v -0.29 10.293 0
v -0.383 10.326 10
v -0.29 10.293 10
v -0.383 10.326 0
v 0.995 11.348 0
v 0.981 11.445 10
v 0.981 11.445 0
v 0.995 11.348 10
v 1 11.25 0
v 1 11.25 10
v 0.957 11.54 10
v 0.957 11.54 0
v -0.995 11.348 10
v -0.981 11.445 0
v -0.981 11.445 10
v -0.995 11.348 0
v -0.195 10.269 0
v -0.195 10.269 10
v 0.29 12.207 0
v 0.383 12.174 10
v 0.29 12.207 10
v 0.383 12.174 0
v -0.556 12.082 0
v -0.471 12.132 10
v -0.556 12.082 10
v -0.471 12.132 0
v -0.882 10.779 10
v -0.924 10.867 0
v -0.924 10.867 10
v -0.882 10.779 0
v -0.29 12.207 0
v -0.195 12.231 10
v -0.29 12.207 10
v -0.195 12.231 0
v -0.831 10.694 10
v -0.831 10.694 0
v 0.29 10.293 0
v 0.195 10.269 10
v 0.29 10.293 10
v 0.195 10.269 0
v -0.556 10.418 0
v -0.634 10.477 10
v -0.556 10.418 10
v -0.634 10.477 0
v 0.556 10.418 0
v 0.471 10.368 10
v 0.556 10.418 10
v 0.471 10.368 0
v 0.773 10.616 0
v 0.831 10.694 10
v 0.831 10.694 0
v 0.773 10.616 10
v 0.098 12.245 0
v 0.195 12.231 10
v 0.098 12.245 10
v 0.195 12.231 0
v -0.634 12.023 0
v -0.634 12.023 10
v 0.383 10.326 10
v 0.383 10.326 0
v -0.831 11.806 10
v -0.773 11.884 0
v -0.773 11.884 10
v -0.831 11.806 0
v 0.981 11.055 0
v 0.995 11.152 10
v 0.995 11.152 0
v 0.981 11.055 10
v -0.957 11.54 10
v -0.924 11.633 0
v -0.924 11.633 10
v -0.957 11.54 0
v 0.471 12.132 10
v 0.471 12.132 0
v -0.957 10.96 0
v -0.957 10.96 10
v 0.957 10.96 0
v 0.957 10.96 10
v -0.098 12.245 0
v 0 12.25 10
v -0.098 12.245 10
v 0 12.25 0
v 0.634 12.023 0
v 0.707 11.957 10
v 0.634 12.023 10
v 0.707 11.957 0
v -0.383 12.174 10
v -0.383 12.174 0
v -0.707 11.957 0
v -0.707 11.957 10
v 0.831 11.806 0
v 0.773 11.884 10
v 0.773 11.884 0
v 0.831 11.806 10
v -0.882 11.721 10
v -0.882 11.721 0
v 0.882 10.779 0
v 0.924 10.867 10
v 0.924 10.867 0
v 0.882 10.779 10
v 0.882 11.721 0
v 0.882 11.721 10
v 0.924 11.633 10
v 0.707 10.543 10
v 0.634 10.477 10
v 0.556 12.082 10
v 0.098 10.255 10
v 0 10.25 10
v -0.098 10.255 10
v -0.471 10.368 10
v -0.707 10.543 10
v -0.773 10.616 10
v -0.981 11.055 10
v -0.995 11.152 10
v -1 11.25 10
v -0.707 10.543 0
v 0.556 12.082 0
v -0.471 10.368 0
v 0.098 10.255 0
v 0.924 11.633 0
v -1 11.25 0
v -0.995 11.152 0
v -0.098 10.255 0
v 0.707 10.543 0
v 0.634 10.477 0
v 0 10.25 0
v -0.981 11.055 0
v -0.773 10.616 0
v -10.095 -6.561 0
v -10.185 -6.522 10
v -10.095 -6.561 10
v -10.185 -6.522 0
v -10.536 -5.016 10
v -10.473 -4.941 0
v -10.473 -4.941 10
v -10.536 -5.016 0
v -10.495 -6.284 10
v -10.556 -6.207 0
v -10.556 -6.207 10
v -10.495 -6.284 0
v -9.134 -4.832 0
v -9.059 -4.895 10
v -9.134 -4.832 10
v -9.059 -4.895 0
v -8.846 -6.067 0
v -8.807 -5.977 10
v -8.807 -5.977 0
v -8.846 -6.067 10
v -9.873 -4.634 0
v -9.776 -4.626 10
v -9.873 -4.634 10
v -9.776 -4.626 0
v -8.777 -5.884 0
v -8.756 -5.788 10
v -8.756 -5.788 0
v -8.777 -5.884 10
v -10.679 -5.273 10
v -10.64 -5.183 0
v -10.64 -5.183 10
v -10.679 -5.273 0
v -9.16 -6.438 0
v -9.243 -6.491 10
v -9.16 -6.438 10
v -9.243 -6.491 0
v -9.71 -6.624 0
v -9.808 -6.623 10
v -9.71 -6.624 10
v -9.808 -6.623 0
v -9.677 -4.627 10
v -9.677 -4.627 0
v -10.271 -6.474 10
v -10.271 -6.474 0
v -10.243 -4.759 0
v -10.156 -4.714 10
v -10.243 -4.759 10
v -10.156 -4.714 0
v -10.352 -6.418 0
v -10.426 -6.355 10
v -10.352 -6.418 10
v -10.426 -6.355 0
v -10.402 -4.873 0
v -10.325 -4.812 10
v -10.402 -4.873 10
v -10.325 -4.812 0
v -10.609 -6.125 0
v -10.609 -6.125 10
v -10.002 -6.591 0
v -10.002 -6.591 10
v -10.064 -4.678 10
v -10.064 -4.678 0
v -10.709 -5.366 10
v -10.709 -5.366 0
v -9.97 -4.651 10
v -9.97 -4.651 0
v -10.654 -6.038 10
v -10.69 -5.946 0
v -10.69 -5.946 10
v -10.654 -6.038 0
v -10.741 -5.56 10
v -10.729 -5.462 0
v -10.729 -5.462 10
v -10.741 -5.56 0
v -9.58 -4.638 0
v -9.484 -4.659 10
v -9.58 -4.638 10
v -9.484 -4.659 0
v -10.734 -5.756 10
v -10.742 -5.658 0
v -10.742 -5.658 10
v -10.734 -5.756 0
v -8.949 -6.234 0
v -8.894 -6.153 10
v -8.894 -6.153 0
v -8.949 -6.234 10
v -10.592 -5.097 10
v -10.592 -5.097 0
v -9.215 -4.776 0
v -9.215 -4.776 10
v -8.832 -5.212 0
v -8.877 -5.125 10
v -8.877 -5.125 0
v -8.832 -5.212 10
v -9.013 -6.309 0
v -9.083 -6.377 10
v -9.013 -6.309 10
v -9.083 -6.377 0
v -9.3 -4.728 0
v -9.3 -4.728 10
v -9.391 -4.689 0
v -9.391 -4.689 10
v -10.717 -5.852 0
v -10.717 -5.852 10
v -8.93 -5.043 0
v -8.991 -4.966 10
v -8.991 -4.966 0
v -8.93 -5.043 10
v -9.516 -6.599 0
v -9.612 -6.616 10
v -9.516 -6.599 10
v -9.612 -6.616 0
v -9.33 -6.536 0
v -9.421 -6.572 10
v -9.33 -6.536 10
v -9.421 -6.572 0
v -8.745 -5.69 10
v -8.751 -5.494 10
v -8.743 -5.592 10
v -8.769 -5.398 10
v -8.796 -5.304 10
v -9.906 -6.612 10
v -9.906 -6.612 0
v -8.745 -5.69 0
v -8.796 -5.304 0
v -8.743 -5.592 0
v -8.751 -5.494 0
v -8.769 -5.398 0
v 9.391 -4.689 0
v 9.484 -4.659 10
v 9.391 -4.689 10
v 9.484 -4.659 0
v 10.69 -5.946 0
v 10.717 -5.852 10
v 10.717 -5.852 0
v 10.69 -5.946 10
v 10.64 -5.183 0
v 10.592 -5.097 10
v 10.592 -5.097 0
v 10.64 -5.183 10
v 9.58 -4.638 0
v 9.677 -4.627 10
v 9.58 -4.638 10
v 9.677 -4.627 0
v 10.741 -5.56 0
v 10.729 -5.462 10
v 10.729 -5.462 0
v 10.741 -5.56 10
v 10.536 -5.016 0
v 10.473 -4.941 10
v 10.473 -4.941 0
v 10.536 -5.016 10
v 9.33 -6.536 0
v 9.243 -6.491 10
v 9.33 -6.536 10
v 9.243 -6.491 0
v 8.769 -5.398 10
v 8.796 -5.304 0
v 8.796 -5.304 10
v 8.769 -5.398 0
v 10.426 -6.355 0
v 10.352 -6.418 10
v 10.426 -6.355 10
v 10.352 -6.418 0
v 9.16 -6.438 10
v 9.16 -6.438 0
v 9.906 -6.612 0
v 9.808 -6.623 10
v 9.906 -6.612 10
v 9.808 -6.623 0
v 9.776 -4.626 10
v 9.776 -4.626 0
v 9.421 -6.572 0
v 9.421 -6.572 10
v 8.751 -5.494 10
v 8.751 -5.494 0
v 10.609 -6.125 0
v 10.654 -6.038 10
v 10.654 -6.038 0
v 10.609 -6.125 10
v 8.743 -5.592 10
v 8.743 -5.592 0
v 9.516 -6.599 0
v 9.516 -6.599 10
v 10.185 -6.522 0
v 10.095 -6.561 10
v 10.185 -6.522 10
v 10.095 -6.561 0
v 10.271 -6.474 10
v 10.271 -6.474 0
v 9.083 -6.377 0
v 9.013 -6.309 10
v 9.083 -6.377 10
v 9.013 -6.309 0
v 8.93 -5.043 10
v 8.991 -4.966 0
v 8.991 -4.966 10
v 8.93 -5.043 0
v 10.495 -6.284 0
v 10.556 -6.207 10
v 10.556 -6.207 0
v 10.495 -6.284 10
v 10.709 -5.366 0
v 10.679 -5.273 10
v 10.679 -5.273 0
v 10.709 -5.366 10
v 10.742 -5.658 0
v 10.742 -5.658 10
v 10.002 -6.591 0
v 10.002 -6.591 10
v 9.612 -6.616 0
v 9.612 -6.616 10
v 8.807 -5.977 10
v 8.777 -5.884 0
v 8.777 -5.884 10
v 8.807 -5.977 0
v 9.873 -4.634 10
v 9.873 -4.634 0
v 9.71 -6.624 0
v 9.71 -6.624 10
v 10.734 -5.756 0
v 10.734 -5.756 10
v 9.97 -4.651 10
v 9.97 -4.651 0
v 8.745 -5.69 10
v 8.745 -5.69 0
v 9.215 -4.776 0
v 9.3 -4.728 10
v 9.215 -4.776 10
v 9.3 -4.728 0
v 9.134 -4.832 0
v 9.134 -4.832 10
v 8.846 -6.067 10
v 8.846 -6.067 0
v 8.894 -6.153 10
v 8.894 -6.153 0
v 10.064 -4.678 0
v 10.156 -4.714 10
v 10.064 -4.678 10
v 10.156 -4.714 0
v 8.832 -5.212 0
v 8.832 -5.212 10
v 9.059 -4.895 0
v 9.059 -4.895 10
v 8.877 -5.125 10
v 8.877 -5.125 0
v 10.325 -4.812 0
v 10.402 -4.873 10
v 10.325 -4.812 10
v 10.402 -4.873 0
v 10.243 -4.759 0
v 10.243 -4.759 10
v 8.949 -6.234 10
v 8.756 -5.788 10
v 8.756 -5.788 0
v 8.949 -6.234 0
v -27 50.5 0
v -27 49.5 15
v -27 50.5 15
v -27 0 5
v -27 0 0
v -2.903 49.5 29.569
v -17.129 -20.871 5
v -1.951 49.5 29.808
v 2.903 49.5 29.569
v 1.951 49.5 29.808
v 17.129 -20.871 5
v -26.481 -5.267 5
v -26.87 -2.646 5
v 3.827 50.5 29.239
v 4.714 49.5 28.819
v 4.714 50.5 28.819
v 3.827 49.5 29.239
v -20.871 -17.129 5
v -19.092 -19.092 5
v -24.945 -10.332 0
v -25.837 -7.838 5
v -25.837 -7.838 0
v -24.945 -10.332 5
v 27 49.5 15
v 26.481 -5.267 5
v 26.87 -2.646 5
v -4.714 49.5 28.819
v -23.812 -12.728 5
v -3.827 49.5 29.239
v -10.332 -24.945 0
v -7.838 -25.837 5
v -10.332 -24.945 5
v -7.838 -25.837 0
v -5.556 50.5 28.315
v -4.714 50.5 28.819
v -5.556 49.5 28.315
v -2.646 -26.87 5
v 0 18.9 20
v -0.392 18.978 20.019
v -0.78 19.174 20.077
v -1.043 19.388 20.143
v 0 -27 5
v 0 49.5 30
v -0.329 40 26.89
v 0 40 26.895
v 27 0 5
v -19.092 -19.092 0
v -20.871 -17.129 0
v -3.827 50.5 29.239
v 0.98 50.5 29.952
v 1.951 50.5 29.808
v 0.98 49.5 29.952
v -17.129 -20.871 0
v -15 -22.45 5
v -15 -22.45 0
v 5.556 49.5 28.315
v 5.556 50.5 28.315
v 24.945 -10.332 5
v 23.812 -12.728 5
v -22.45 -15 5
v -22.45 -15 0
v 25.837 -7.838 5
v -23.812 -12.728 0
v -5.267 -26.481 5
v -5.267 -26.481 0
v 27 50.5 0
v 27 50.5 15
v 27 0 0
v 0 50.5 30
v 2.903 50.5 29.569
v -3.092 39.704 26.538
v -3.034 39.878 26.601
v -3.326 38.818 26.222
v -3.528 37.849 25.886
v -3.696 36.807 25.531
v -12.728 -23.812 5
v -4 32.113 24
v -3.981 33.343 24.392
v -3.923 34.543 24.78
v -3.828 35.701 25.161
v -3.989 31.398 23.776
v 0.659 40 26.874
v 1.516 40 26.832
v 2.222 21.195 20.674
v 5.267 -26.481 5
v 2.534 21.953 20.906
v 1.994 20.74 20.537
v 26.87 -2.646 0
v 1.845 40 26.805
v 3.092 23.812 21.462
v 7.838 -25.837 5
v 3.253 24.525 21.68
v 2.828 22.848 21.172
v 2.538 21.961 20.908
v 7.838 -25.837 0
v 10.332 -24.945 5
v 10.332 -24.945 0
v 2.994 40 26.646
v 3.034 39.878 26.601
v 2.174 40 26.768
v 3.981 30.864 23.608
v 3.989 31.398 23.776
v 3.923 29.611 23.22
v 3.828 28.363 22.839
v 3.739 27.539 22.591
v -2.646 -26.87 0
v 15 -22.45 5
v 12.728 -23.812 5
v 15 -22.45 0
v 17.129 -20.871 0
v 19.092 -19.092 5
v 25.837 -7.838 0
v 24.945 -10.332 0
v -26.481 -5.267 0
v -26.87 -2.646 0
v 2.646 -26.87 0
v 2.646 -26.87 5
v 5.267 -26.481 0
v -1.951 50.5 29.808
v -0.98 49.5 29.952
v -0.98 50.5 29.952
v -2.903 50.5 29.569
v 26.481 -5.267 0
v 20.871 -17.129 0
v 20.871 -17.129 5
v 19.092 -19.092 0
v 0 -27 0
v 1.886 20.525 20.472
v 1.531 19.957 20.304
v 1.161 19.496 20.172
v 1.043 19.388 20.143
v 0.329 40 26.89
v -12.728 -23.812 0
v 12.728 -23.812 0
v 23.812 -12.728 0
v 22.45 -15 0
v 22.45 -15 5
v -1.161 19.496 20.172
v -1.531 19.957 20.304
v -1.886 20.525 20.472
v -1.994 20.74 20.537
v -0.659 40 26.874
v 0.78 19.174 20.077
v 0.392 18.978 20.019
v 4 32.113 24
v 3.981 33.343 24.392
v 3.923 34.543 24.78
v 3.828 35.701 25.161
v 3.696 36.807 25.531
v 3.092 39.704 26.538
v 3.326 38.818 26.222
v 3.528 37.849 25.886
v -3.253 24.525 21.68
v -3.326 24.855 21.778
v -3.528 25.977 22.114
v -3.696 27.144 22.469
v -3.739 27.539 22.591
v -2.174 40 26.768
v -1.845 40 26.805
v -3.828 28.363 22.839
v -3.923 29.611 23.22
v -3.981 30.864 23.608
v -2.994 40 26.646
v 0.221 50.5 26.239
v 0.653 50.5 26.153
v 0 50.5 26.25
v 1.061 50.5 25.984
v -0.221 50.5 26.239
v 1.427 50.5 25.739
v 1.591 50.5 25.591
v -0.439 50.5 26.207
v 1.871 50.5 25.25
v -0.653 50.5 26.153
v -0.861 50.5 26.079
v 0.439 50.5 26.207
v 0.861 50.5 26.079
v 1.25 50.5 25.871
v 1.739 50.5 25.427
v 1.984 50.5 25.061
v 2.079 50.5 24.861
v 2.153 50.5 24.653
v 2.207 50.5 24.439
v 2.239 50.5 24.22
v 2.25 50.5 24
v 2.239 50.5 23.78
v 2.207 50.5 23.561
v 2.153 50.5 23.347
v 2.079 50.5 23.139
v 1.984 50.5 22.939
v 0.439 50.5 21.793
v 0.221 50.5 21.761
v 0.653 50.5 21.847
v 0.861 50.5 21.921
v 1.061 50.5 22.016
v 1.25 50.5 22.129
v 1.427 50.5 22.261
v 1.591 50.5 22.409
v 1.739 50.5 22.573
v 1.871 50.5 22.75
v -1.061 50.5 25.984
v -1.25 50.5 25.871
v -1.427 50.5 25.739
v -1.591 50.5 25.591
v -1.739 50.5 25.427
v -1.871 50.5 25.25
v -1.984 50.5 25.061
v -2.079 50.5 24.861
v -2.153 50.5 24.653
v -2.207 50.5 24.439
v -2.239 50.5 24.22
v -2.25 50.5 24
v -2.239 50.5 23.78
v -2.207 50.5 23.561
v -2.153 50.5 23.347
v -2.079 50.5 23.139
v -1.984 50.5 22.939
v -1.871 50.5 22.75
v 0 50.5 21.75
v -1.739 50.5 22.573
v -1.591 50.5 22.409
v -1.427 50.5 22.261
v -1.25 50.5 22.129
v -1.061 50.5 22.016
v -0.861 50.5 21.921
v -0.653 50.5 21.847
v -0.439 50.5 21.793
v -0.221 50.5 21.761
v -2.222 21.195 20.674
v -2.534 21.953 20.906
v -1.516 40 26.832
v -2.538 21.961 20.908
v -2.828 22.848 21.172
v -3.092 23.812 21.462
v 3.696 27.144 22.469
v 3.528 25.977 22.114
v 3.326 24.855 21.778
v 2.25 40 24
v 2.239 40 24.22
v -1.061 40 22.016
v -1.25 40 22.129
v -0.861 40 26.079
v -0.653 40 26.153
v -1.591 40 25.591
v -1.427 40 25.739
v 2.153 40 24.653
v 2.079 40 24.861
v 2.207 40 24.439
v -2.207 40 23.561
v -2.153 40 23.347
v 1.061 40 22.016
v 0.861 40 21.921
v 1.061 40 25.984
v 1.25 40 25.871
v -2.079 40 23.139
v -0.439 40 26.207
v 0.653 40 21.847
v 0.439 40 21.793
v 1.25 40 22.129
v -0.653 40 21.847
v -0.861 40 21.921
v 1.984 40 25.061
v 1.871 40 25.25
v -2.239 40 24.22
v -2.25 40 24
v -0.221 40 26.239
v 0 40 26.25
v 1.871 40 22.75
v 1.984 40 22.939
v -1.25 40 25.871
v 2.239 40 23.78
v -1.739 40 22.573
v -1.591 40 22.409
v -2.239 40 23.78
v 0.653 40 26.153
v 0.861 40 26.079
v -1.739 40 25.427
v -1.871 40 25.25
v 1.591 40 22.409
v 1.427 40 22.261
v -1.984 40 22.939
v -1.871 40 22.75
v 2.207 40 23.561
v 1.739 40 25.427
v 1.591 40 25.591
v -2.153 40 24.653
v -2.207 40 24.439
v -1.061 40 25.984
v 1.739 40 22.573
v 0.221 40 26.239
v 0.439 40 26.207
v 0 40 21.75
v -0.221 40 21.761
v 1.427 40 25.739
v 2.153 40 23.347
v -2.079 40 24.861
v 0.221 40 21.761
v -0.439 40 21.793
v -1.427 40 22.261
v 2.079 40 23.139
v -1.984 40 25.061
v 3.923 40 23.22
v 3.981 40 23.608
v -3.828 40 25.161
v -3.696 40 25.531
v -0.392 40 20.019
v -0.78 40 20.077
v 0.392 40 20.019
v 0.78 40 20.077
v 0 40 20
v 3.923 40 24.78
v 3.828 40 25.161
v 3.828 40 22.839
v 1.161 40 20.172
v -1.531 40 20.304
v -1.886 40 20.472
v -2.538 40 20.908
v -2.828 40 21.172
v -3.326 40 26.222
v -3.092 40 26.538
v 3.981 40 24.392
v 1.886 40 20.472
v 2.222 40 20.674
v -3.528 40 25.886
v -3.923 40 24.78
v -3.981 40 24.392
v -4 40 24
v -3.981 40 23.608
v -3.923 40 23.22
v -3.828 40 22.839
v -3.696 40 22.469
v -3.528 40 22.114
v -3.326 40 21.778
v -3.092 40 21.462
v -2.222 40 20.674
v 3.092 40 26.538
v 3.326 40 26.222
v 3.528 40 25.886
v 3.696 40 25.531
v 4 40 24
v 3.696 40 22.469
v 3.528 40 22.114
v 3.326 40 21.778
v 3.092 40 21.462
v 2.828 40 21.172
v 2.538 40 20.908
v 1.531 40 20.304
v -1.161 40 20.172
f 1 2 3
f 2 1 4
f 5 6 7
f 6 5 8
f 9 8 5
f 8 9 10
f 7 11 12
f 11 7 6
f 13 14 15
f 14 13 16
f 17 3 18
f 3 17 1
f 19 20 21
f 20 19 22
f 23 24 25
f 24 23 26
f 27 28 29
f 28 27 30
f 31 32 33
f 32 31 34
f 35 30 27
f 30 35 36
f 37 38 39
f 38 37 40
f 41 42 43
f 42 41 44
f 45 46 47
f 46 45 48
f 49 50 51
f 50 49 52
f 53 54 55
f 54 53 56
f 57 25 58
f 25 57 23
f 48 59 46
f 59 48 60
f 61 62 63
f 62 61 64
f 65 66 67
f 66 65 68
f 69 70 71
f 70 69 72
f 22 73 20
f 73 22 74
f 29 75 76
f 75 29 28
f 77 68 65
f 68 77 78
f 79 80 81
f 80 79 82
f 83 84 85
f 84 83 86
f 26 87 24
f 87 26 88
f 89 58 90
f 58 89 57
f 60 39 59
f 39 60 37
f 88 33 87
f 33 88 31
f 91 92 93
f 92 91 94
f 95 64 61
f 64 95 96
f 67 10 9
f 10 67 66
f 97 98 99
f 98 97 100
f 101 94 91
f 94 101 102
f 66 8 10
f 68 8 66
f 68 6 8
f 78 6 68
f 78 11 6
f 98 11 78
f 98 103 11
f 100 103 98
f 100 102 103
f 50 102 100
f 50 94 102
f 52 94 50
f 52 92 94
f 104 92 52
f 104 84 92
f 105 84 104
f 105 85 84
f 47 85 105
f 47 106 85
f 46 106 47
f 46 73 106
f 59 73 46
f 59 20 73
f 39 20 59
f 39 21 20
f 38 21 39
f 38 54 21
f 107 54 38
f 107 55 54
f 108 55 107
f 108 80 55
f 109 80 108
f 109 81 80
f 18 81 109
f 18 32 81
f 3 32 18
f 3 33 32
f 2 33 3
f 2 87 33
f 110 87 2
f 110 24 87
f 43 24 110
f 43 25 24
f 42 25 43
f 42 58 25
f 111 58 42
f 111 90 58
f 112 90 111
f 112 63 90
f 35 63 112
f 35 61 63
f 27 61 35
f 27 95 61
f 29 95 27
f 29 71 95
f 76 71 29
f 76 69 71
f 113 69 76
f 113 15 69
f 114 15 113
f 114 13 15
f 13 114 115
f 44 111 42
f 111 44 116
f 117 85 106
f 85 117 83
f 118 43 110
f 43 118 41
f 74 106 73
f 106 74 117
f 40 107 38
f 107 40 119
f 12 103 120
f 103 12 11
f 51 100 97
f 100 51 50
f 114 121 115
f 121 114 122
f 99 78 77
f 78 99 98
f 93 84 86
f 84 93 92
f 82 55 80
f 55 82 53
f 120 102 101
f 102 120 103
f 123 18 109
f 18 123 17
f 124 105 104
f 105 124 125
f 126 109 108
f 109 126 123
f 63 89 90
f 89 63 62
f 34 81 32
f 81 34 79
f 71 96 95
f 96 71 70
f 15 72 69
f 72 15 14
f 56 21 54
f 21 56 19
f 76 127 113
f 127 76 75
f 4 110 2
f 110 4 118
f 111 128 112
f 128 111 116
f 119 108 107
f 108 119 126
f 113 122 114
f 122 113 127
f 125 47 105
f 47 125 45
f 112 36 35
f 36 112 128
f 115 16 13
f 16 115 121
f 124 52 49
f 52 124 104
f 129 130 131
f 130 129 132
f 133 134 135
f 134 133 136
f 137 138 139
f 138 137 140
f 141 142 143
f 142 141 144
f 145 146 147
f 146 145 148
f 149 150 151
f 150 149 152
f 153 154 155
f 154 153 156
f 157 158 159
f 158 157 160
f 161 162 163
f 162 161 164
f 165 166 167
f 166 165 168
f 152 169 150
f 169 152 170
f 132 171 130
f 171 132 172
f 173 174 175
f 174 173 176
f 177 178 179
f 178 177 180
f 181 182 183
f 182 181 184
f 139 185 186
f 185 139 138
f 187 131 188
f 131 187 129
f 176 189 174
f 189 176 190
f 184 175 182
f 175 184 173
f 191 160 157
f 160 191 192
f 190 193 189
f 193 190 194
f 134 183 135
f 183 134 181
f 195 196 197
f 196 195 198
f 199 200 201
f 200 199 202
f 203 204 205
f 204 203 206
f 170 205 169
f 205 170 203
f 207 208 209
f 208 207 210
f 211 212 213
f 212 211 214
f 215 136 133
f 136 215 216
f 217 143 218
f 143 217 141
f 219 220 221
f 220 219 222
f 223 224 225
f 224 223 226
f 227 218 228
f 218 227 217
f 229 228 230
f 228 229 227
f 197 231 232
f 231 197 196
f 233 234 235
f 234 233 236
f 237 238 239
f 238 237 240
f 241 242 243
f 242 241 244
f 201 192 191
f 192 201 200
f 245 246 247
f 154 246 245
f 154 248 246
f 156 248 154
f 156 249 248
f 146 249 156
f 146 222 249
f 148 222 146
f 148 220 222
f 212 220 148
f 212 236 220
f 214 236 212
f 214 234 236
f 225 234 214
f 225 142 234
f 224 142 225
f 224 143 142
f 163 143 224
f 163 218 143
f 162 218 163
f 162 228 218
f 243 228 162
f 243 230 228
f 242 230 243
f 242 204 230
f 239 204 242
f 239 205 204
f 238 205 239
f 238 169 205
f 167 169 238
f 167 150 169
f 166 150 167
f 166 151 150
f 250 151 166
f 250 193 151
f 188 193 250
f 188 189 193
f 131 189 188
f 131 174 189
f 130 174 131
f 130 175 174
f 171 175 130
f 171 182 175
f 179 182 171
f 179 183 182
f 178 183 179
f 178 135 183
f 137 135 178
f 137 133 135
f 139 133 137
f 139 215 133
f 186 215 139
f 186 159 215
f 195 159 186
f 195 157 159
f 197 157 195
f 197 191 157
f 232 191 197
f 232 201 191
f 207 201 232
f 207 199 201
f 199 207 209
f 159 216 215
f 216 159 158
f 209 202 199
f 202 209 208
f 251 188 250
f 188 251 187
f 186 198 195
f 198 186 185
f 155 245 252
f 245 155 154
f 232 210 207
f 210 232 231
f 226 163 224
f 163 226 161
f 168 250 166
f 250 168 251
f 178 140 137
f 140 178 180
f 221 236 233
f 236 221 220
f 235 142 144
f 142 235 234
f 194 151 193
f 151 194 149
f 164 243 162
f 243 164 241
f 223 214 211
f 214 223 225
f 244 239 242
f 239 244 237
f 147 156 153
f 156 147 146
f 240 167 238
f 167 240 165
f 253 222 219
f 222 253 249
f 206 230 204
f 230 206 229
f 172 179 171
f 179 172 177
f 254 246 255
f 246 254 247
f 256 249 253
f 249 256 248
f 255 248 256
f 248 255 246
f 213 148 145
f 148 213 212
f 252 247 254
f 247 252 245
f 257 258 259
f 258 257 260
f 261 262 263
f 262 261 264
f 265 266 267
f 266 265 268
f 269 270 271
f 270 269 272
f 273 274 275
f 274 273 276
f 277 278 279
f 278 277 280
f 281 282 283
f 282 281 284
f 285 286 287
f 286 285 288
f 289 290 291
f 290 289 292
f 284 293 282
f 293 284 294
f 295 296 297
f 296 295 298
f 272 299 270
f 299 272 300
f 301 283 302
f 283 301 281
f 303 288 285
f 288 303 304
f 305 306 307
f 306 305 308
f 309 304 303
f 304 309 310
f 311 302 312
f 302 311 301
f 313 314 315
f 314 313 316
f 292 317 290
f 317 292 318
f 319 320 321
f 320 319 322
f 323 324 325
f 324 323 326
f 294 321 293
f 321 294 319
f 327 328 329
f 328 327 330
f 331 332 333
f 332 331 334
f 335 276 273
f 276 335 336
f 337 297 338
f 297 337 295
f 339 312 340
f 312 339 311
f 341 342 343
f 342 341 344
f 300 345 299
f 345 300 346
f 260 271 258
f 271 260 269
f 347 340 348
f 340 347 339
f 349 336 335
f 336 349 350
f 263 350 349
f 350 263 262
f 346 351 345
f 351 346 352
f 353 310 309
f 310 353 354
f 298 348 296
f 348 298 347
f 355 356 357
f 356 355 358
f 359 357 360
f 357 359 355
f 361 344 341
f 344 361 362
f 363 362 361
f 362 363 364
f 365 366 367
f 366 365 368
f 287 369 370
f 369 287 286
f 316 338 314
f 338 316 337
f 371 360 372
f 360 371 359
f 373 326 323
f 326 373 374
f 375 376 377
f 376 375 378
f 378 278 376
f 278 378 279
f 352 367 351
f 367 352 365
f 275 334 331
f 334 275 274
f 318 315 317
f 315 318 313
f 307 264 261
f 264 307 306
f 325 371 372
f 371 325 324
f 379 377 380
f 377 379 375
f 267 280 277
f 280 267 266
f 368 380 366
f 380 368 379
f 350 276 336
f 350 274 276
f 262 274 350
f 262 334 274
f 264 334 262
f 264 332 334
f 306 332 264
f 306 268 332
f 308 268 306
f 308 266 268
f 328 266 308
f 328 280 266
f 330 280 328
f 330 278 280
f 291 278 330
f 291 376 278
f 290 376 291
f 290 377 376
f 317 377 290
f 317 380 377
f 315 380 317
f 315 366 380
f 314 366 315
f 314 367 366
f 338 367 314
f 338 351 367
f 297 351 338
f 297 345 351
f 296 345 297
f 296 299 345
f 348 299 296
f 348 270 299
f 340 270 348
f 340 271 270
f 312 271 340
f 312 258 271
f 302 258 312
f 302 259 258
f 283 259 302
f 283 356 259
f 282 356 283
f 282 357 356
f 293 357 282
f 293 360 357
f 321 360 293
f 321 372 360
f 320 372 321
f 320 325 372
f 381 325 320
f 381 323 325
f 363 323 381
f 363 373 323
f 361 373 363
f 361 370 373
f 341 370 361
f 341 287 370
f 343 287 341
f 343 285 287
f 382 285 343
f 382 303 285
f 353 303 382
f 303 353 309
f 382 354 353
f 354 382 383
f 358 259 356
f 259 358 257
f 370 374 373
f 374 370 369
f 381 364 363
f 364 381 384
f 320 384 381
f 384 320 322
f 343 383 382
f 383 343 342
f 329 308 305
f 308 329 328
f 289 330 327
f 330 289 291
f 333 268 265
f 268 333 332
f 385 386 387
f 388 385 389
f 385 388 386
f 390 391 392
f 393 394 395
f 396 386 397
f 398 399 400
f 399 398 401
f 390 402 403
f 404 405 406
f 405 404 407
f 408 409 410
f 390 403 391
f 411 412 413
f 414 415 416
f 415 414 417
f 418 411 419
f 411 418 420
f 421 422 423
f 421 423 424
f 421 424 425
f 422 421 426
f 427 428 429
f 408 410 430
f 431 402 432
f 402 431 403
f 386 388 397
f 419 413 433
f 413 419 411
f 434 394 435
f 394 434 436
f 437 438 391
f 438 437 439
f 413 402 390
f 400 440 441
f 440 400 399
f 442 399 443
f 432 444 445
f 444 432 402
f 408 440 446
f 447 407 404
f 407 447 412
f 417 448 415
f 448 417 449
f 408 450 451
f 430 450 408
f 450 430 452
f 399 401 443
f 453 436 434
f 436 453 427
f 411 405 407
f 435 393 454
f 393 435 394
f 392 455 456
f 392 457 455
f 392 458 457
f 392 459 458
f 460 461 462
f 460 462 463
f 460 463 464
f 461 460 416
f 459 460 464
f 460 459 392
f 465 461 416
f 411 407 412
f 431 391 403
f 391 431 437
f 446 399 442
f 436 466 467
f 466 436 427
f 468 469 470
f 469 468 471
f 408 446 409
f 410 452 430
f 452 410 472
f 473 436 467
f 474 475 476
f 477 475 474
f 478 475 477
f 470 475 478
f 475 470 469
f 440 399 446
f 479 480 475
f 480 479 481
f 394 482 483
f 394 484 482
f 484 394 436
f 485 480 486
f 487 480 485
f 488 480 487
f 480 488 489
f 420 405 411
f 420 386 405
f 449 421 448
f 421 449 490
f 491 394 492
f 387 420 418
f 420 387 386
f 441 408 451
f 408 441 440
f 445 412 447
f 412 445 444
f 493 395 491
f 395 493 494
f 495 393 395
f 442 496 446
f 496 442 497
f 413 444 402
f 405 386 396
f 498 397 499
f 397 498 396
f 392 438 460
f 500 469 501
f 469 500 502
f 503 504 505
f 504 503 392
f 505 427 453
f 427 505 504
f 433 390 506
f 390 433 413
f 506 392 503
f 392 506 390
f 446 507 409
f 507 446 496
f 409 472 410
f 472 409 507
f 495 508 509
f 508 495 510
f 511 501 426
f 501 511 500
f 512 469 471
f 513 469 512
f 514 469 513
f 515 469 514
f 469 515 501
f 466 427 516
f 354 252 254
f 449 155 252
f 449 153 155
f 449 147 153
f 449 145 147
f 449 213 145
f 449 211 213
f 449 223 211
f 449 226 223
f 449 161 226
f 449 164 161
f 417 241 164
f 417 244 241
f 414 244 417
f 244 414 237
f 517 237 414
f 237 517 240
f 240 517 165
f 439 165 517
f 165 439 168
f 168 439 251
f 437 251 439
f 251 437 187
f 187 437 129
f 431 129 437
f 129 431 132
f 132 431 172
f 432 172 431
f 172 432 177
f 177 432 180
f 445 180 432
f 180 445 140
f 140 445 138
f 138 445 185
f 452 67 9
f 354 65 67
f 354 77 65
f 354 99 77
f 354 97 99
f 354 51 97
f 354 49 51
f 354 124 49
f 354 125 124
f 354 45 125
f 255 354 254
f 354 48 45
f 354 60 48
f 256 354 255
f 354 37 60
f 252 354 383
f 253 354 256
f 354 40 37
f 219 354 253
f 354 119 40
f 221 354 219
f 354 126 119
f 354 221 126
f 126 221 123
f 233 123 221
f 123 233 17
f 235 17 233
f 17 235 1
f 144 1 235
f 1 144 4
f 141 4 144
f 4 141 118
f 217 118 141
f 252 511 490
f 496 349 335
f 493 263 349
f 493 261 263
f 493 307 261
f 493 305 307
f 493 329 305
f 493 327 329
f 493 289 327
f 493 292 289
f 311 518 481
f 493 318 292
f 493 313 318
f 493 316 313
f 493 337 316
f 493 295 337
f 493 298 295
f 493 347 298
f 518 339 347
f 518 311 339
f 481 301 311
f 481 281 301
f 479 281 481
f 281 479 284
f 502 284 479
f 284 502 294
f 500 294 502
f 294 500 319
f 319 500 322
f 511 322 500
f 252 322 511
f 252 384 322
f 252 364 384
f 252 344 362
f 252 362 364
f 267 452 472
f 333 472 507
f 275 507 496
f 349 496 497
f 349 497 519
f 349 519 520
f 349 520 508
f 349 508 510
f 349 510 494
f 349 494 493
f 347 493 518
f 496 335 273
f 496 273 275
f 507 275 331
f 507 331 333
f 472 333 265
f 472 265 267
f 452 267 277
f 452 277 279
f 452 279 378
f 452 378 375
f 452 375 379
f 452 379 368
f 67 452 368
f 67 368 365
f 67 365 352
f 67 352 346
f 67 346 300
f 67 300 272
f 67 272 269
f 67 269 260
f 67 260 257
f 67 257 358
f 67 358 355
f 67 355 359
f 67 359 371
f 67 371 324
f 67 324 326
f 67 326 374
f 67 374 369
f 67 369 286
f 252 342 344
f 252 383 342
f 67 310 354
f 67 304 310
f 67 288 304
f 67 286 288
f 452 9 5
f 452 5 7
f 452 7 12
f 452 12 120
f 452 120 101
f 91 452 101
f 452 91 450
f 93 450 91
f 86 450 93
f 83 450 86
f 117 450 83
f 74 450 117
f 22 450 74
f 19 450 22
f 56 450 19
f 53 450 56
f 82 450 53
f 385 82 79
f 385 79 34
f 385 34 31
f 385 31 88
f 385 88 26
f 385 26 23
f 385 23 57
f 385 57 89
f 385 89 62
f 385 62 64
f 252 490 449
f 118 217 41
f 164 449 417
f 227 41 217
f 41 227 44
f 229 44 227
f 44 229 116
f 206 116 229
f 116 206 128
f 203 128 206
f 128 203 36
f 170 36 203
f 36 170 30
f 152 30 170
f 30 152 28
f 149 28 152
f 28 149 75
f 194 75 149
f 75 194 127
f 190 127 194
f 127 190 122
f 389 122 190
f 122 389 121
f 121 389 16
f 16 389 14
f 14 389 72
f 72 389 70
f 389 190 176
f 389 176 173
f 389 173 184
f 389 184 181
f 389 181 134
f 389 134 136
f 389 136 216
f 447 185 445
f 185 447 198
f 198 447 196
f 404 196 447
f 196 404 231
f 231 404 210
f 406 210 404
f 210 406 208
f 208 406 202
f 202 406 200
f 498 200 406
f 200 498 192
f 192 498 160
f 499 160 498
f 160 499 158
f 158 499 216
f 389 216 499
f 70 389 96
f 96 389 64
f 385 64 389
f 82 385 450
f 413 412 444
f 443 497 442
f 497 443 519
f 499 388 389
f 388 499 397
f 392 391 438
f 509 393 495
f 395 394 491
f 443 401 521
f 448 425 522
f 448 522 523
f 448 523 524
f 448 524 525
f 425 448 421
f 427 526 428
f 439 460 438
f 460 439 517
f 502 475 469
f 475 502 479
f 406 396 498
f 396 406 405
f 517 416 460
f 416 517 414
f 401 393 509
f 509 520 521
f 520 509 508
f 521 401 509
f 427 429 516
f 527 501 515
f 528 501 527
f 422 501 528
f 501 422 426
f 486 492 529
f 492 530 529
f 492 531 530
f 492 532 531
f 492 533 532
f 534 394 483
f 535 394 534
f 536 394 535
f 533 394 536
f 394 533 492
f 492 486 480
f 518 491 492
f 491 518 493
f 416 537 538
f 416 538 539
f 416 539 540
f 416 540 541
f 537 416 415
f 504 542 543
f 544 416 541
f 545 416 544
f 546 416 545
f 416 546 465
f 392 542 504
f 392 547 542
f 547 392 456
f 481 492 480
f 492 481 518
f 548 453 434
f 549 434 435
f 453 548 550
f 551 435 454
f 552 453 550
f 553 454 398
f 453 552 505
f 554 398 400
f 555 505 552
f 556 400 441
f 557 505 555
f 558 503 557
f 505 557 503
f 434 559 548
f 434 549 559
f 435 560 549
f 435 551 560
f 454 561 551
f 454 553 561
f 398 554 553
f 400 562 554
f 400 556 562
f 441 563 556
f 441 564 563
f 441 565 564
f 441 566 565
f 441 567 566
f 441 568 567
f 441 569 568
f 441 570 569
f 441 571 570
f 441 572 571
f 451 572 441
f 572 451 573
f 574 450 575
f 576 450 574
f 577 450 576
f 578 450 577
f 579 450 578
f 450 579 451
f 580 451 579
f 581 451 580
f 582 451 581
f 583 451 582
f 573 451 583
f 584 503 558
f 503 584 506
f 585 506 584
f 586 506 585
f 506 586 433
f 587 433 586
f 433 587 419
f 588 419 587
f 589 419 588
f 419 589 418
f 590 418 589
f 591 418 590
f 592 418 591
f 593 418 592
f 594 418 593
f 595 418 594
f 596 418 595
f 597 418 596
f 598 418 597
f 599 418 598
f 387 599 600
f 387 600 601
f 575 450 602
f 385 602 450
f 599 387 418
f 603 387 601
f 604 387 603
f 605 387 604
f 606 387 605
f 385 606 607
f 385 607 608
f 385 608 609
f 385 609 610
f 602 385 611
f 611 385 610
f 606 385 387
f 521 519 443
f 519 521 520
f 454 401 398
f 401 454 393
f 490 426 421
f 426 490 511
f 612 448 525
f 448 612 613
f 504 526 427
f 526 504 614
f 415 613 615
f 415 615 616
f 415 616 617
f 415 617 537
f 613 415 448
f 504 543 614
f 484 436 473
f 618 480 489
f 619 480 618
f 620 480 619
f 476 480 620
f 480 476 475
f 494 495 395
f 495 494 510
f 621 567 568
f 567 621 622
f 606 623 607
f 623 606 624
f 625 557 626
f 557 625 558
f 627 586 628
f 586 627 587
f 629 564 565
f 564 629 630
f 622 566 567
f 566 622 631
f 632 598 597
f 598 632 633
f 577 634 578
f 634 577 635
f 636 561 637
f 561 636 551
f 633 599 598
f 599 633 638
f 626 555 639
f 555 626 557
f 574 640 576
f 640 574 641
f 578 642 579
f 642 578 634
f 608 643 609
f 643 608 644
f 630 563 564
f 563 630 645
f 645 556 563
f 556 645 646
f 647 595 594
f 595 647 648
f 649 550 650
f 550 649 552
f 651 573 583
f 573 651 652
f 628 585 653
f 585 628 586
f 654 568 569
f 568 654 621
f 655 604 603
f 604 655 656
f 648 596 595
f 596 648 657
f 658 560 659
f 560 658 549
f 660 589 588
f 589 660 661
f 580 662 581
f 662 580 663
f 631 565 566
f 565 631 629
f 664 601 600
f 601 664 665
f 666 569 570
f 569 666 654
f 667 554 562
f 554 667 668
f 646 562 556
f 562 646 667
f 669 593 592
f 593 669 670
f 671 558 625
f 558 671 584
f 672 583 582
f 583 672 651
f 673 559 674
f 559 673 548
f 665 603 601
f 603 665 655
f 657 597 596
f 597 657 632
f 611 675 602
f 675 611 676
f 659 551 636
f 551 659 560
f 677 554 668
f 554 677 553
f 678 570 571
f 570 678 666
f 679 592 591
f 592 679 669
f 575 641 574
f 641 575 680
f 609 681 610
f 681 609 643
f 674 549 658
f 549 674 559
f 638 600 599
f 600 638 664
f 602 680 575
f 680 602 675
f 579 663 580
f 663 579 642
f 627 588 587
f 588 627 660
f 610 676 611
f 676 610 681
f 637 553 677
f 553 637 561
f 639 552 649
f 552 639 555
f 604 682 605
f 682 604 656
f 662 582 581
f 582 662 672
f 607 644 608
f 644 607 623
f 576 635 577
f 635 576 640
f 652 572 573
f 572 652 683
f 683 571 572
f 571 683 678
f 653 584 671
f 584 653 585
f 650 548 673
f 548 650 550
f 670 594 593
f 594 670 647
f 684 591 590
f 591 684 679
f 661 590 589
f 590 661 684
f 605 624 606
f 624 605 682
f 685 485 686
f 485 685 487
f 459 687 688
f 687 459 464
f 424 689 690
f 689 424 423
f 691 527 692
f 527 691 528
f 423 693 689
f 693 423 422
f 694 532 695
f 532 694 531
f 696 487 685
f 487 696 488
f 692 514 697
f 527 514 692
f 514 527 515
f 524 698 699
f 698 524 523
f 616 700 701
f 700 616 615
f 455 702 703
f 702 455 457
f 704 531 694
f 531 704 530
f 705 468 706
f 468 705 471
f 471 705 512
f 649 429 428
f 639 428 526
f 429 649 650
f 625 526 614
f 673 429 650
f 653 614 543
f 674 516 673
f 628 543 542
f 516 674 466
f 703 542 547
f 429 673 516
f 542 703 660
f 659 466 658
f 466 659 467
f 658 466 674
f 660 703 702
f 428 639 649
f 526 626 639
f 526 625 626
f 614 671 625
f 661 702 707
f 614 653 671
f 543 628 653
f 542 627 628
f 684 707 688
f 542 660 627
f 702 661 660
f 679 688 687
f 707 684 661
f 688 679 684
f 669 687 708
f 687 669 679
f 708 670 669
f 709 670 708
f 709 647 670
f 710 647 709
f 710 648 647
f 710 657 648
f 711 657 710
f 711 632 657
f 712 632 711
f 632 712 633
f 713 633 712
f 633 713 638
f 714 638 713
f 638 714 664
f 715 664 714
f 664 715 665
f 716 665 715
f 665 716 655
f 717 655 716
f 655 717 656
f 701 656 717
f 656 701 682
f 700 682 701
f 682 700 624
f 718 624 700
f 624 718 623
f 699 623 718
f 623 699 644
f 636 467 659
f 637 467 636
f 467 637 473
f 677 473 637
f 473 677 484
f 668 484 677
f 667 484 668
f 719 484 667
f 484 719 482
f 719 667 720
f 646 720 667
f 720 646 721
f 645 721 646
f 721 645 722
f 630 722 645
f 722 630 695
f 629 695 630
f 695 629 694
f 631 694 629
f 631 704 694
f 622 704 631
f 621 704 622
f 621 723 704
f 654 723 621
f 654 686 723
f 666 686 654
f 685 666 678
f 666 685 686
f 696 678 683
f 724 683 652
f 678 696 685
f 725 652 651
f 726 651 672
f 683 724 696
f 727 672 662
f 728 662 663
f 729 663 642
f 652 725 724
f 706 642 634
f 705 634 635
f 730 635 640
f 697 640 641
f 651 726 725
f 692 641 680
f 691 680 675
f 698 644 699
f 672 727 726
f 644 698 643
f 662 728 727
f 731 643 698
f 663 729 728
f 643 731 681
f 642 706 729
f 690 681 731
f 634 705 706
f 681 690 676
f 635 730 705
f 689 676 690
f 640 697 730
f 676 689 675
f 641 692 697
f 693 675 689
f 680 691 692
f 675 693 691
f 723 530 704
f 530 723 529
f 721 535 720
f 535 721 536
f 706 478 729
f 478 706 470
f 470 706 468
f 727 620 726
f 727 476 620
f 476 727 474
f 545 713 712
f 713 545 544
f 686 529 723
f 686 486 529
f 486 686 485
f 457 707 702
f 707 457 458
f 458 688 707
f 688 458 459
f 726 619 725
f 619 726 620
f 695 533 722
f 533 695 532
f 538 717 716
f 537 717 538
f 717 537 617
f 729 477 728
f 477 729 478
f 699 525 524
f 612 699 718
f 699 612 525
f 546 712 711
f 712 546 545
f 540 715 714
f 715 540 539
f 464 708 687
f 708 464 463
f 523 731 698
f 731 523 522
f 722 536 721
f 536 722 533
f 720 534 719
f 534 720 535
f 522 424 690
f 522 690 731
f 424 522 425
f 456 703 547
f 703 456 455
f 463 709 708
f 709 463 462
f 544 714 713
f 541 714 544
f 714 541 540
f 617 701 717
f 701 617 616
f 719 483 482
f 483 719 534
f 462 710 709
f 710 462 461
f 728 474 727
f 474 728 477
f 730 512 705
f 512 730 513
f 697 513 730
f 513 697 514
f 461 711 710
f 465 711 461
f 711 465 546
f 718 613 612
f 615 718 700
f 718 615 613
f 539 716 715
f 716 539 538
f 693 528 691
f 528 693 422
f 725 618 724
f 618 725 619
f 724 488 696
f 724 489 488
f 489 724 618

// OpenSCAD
$fn=64;
difference(){
hull(){
cylinder(d=54,h=5);
translate([0,50,7.5])
cube([54,1,15],center=true);
    translate([0,50.5,20])
rotate([90,0,0])
cylinder(d=20,h=1);
}





translate([0,0,-2]){
translate([0,54/2-4.5/2-13.5,0])
color("red")
cylinder(d=2,h=12);
rotate([0,0,360/3])
translate([0,54/2-4.5/2-13.5,0])
color("red")
cylinder(d=2,h=12);
rotate([0,0,2*360/3])
translate([0,54/2-4.5/2-13.5,0])
color("red")
cylinder(d=2,h=12);
}

translate([0,60,24])
rotate([90,0,0])
cylinder(d=4.5,h=50);

translate([0,40,24])
rotate([90,0,0])
cylinder(d=8,h=50);
}
